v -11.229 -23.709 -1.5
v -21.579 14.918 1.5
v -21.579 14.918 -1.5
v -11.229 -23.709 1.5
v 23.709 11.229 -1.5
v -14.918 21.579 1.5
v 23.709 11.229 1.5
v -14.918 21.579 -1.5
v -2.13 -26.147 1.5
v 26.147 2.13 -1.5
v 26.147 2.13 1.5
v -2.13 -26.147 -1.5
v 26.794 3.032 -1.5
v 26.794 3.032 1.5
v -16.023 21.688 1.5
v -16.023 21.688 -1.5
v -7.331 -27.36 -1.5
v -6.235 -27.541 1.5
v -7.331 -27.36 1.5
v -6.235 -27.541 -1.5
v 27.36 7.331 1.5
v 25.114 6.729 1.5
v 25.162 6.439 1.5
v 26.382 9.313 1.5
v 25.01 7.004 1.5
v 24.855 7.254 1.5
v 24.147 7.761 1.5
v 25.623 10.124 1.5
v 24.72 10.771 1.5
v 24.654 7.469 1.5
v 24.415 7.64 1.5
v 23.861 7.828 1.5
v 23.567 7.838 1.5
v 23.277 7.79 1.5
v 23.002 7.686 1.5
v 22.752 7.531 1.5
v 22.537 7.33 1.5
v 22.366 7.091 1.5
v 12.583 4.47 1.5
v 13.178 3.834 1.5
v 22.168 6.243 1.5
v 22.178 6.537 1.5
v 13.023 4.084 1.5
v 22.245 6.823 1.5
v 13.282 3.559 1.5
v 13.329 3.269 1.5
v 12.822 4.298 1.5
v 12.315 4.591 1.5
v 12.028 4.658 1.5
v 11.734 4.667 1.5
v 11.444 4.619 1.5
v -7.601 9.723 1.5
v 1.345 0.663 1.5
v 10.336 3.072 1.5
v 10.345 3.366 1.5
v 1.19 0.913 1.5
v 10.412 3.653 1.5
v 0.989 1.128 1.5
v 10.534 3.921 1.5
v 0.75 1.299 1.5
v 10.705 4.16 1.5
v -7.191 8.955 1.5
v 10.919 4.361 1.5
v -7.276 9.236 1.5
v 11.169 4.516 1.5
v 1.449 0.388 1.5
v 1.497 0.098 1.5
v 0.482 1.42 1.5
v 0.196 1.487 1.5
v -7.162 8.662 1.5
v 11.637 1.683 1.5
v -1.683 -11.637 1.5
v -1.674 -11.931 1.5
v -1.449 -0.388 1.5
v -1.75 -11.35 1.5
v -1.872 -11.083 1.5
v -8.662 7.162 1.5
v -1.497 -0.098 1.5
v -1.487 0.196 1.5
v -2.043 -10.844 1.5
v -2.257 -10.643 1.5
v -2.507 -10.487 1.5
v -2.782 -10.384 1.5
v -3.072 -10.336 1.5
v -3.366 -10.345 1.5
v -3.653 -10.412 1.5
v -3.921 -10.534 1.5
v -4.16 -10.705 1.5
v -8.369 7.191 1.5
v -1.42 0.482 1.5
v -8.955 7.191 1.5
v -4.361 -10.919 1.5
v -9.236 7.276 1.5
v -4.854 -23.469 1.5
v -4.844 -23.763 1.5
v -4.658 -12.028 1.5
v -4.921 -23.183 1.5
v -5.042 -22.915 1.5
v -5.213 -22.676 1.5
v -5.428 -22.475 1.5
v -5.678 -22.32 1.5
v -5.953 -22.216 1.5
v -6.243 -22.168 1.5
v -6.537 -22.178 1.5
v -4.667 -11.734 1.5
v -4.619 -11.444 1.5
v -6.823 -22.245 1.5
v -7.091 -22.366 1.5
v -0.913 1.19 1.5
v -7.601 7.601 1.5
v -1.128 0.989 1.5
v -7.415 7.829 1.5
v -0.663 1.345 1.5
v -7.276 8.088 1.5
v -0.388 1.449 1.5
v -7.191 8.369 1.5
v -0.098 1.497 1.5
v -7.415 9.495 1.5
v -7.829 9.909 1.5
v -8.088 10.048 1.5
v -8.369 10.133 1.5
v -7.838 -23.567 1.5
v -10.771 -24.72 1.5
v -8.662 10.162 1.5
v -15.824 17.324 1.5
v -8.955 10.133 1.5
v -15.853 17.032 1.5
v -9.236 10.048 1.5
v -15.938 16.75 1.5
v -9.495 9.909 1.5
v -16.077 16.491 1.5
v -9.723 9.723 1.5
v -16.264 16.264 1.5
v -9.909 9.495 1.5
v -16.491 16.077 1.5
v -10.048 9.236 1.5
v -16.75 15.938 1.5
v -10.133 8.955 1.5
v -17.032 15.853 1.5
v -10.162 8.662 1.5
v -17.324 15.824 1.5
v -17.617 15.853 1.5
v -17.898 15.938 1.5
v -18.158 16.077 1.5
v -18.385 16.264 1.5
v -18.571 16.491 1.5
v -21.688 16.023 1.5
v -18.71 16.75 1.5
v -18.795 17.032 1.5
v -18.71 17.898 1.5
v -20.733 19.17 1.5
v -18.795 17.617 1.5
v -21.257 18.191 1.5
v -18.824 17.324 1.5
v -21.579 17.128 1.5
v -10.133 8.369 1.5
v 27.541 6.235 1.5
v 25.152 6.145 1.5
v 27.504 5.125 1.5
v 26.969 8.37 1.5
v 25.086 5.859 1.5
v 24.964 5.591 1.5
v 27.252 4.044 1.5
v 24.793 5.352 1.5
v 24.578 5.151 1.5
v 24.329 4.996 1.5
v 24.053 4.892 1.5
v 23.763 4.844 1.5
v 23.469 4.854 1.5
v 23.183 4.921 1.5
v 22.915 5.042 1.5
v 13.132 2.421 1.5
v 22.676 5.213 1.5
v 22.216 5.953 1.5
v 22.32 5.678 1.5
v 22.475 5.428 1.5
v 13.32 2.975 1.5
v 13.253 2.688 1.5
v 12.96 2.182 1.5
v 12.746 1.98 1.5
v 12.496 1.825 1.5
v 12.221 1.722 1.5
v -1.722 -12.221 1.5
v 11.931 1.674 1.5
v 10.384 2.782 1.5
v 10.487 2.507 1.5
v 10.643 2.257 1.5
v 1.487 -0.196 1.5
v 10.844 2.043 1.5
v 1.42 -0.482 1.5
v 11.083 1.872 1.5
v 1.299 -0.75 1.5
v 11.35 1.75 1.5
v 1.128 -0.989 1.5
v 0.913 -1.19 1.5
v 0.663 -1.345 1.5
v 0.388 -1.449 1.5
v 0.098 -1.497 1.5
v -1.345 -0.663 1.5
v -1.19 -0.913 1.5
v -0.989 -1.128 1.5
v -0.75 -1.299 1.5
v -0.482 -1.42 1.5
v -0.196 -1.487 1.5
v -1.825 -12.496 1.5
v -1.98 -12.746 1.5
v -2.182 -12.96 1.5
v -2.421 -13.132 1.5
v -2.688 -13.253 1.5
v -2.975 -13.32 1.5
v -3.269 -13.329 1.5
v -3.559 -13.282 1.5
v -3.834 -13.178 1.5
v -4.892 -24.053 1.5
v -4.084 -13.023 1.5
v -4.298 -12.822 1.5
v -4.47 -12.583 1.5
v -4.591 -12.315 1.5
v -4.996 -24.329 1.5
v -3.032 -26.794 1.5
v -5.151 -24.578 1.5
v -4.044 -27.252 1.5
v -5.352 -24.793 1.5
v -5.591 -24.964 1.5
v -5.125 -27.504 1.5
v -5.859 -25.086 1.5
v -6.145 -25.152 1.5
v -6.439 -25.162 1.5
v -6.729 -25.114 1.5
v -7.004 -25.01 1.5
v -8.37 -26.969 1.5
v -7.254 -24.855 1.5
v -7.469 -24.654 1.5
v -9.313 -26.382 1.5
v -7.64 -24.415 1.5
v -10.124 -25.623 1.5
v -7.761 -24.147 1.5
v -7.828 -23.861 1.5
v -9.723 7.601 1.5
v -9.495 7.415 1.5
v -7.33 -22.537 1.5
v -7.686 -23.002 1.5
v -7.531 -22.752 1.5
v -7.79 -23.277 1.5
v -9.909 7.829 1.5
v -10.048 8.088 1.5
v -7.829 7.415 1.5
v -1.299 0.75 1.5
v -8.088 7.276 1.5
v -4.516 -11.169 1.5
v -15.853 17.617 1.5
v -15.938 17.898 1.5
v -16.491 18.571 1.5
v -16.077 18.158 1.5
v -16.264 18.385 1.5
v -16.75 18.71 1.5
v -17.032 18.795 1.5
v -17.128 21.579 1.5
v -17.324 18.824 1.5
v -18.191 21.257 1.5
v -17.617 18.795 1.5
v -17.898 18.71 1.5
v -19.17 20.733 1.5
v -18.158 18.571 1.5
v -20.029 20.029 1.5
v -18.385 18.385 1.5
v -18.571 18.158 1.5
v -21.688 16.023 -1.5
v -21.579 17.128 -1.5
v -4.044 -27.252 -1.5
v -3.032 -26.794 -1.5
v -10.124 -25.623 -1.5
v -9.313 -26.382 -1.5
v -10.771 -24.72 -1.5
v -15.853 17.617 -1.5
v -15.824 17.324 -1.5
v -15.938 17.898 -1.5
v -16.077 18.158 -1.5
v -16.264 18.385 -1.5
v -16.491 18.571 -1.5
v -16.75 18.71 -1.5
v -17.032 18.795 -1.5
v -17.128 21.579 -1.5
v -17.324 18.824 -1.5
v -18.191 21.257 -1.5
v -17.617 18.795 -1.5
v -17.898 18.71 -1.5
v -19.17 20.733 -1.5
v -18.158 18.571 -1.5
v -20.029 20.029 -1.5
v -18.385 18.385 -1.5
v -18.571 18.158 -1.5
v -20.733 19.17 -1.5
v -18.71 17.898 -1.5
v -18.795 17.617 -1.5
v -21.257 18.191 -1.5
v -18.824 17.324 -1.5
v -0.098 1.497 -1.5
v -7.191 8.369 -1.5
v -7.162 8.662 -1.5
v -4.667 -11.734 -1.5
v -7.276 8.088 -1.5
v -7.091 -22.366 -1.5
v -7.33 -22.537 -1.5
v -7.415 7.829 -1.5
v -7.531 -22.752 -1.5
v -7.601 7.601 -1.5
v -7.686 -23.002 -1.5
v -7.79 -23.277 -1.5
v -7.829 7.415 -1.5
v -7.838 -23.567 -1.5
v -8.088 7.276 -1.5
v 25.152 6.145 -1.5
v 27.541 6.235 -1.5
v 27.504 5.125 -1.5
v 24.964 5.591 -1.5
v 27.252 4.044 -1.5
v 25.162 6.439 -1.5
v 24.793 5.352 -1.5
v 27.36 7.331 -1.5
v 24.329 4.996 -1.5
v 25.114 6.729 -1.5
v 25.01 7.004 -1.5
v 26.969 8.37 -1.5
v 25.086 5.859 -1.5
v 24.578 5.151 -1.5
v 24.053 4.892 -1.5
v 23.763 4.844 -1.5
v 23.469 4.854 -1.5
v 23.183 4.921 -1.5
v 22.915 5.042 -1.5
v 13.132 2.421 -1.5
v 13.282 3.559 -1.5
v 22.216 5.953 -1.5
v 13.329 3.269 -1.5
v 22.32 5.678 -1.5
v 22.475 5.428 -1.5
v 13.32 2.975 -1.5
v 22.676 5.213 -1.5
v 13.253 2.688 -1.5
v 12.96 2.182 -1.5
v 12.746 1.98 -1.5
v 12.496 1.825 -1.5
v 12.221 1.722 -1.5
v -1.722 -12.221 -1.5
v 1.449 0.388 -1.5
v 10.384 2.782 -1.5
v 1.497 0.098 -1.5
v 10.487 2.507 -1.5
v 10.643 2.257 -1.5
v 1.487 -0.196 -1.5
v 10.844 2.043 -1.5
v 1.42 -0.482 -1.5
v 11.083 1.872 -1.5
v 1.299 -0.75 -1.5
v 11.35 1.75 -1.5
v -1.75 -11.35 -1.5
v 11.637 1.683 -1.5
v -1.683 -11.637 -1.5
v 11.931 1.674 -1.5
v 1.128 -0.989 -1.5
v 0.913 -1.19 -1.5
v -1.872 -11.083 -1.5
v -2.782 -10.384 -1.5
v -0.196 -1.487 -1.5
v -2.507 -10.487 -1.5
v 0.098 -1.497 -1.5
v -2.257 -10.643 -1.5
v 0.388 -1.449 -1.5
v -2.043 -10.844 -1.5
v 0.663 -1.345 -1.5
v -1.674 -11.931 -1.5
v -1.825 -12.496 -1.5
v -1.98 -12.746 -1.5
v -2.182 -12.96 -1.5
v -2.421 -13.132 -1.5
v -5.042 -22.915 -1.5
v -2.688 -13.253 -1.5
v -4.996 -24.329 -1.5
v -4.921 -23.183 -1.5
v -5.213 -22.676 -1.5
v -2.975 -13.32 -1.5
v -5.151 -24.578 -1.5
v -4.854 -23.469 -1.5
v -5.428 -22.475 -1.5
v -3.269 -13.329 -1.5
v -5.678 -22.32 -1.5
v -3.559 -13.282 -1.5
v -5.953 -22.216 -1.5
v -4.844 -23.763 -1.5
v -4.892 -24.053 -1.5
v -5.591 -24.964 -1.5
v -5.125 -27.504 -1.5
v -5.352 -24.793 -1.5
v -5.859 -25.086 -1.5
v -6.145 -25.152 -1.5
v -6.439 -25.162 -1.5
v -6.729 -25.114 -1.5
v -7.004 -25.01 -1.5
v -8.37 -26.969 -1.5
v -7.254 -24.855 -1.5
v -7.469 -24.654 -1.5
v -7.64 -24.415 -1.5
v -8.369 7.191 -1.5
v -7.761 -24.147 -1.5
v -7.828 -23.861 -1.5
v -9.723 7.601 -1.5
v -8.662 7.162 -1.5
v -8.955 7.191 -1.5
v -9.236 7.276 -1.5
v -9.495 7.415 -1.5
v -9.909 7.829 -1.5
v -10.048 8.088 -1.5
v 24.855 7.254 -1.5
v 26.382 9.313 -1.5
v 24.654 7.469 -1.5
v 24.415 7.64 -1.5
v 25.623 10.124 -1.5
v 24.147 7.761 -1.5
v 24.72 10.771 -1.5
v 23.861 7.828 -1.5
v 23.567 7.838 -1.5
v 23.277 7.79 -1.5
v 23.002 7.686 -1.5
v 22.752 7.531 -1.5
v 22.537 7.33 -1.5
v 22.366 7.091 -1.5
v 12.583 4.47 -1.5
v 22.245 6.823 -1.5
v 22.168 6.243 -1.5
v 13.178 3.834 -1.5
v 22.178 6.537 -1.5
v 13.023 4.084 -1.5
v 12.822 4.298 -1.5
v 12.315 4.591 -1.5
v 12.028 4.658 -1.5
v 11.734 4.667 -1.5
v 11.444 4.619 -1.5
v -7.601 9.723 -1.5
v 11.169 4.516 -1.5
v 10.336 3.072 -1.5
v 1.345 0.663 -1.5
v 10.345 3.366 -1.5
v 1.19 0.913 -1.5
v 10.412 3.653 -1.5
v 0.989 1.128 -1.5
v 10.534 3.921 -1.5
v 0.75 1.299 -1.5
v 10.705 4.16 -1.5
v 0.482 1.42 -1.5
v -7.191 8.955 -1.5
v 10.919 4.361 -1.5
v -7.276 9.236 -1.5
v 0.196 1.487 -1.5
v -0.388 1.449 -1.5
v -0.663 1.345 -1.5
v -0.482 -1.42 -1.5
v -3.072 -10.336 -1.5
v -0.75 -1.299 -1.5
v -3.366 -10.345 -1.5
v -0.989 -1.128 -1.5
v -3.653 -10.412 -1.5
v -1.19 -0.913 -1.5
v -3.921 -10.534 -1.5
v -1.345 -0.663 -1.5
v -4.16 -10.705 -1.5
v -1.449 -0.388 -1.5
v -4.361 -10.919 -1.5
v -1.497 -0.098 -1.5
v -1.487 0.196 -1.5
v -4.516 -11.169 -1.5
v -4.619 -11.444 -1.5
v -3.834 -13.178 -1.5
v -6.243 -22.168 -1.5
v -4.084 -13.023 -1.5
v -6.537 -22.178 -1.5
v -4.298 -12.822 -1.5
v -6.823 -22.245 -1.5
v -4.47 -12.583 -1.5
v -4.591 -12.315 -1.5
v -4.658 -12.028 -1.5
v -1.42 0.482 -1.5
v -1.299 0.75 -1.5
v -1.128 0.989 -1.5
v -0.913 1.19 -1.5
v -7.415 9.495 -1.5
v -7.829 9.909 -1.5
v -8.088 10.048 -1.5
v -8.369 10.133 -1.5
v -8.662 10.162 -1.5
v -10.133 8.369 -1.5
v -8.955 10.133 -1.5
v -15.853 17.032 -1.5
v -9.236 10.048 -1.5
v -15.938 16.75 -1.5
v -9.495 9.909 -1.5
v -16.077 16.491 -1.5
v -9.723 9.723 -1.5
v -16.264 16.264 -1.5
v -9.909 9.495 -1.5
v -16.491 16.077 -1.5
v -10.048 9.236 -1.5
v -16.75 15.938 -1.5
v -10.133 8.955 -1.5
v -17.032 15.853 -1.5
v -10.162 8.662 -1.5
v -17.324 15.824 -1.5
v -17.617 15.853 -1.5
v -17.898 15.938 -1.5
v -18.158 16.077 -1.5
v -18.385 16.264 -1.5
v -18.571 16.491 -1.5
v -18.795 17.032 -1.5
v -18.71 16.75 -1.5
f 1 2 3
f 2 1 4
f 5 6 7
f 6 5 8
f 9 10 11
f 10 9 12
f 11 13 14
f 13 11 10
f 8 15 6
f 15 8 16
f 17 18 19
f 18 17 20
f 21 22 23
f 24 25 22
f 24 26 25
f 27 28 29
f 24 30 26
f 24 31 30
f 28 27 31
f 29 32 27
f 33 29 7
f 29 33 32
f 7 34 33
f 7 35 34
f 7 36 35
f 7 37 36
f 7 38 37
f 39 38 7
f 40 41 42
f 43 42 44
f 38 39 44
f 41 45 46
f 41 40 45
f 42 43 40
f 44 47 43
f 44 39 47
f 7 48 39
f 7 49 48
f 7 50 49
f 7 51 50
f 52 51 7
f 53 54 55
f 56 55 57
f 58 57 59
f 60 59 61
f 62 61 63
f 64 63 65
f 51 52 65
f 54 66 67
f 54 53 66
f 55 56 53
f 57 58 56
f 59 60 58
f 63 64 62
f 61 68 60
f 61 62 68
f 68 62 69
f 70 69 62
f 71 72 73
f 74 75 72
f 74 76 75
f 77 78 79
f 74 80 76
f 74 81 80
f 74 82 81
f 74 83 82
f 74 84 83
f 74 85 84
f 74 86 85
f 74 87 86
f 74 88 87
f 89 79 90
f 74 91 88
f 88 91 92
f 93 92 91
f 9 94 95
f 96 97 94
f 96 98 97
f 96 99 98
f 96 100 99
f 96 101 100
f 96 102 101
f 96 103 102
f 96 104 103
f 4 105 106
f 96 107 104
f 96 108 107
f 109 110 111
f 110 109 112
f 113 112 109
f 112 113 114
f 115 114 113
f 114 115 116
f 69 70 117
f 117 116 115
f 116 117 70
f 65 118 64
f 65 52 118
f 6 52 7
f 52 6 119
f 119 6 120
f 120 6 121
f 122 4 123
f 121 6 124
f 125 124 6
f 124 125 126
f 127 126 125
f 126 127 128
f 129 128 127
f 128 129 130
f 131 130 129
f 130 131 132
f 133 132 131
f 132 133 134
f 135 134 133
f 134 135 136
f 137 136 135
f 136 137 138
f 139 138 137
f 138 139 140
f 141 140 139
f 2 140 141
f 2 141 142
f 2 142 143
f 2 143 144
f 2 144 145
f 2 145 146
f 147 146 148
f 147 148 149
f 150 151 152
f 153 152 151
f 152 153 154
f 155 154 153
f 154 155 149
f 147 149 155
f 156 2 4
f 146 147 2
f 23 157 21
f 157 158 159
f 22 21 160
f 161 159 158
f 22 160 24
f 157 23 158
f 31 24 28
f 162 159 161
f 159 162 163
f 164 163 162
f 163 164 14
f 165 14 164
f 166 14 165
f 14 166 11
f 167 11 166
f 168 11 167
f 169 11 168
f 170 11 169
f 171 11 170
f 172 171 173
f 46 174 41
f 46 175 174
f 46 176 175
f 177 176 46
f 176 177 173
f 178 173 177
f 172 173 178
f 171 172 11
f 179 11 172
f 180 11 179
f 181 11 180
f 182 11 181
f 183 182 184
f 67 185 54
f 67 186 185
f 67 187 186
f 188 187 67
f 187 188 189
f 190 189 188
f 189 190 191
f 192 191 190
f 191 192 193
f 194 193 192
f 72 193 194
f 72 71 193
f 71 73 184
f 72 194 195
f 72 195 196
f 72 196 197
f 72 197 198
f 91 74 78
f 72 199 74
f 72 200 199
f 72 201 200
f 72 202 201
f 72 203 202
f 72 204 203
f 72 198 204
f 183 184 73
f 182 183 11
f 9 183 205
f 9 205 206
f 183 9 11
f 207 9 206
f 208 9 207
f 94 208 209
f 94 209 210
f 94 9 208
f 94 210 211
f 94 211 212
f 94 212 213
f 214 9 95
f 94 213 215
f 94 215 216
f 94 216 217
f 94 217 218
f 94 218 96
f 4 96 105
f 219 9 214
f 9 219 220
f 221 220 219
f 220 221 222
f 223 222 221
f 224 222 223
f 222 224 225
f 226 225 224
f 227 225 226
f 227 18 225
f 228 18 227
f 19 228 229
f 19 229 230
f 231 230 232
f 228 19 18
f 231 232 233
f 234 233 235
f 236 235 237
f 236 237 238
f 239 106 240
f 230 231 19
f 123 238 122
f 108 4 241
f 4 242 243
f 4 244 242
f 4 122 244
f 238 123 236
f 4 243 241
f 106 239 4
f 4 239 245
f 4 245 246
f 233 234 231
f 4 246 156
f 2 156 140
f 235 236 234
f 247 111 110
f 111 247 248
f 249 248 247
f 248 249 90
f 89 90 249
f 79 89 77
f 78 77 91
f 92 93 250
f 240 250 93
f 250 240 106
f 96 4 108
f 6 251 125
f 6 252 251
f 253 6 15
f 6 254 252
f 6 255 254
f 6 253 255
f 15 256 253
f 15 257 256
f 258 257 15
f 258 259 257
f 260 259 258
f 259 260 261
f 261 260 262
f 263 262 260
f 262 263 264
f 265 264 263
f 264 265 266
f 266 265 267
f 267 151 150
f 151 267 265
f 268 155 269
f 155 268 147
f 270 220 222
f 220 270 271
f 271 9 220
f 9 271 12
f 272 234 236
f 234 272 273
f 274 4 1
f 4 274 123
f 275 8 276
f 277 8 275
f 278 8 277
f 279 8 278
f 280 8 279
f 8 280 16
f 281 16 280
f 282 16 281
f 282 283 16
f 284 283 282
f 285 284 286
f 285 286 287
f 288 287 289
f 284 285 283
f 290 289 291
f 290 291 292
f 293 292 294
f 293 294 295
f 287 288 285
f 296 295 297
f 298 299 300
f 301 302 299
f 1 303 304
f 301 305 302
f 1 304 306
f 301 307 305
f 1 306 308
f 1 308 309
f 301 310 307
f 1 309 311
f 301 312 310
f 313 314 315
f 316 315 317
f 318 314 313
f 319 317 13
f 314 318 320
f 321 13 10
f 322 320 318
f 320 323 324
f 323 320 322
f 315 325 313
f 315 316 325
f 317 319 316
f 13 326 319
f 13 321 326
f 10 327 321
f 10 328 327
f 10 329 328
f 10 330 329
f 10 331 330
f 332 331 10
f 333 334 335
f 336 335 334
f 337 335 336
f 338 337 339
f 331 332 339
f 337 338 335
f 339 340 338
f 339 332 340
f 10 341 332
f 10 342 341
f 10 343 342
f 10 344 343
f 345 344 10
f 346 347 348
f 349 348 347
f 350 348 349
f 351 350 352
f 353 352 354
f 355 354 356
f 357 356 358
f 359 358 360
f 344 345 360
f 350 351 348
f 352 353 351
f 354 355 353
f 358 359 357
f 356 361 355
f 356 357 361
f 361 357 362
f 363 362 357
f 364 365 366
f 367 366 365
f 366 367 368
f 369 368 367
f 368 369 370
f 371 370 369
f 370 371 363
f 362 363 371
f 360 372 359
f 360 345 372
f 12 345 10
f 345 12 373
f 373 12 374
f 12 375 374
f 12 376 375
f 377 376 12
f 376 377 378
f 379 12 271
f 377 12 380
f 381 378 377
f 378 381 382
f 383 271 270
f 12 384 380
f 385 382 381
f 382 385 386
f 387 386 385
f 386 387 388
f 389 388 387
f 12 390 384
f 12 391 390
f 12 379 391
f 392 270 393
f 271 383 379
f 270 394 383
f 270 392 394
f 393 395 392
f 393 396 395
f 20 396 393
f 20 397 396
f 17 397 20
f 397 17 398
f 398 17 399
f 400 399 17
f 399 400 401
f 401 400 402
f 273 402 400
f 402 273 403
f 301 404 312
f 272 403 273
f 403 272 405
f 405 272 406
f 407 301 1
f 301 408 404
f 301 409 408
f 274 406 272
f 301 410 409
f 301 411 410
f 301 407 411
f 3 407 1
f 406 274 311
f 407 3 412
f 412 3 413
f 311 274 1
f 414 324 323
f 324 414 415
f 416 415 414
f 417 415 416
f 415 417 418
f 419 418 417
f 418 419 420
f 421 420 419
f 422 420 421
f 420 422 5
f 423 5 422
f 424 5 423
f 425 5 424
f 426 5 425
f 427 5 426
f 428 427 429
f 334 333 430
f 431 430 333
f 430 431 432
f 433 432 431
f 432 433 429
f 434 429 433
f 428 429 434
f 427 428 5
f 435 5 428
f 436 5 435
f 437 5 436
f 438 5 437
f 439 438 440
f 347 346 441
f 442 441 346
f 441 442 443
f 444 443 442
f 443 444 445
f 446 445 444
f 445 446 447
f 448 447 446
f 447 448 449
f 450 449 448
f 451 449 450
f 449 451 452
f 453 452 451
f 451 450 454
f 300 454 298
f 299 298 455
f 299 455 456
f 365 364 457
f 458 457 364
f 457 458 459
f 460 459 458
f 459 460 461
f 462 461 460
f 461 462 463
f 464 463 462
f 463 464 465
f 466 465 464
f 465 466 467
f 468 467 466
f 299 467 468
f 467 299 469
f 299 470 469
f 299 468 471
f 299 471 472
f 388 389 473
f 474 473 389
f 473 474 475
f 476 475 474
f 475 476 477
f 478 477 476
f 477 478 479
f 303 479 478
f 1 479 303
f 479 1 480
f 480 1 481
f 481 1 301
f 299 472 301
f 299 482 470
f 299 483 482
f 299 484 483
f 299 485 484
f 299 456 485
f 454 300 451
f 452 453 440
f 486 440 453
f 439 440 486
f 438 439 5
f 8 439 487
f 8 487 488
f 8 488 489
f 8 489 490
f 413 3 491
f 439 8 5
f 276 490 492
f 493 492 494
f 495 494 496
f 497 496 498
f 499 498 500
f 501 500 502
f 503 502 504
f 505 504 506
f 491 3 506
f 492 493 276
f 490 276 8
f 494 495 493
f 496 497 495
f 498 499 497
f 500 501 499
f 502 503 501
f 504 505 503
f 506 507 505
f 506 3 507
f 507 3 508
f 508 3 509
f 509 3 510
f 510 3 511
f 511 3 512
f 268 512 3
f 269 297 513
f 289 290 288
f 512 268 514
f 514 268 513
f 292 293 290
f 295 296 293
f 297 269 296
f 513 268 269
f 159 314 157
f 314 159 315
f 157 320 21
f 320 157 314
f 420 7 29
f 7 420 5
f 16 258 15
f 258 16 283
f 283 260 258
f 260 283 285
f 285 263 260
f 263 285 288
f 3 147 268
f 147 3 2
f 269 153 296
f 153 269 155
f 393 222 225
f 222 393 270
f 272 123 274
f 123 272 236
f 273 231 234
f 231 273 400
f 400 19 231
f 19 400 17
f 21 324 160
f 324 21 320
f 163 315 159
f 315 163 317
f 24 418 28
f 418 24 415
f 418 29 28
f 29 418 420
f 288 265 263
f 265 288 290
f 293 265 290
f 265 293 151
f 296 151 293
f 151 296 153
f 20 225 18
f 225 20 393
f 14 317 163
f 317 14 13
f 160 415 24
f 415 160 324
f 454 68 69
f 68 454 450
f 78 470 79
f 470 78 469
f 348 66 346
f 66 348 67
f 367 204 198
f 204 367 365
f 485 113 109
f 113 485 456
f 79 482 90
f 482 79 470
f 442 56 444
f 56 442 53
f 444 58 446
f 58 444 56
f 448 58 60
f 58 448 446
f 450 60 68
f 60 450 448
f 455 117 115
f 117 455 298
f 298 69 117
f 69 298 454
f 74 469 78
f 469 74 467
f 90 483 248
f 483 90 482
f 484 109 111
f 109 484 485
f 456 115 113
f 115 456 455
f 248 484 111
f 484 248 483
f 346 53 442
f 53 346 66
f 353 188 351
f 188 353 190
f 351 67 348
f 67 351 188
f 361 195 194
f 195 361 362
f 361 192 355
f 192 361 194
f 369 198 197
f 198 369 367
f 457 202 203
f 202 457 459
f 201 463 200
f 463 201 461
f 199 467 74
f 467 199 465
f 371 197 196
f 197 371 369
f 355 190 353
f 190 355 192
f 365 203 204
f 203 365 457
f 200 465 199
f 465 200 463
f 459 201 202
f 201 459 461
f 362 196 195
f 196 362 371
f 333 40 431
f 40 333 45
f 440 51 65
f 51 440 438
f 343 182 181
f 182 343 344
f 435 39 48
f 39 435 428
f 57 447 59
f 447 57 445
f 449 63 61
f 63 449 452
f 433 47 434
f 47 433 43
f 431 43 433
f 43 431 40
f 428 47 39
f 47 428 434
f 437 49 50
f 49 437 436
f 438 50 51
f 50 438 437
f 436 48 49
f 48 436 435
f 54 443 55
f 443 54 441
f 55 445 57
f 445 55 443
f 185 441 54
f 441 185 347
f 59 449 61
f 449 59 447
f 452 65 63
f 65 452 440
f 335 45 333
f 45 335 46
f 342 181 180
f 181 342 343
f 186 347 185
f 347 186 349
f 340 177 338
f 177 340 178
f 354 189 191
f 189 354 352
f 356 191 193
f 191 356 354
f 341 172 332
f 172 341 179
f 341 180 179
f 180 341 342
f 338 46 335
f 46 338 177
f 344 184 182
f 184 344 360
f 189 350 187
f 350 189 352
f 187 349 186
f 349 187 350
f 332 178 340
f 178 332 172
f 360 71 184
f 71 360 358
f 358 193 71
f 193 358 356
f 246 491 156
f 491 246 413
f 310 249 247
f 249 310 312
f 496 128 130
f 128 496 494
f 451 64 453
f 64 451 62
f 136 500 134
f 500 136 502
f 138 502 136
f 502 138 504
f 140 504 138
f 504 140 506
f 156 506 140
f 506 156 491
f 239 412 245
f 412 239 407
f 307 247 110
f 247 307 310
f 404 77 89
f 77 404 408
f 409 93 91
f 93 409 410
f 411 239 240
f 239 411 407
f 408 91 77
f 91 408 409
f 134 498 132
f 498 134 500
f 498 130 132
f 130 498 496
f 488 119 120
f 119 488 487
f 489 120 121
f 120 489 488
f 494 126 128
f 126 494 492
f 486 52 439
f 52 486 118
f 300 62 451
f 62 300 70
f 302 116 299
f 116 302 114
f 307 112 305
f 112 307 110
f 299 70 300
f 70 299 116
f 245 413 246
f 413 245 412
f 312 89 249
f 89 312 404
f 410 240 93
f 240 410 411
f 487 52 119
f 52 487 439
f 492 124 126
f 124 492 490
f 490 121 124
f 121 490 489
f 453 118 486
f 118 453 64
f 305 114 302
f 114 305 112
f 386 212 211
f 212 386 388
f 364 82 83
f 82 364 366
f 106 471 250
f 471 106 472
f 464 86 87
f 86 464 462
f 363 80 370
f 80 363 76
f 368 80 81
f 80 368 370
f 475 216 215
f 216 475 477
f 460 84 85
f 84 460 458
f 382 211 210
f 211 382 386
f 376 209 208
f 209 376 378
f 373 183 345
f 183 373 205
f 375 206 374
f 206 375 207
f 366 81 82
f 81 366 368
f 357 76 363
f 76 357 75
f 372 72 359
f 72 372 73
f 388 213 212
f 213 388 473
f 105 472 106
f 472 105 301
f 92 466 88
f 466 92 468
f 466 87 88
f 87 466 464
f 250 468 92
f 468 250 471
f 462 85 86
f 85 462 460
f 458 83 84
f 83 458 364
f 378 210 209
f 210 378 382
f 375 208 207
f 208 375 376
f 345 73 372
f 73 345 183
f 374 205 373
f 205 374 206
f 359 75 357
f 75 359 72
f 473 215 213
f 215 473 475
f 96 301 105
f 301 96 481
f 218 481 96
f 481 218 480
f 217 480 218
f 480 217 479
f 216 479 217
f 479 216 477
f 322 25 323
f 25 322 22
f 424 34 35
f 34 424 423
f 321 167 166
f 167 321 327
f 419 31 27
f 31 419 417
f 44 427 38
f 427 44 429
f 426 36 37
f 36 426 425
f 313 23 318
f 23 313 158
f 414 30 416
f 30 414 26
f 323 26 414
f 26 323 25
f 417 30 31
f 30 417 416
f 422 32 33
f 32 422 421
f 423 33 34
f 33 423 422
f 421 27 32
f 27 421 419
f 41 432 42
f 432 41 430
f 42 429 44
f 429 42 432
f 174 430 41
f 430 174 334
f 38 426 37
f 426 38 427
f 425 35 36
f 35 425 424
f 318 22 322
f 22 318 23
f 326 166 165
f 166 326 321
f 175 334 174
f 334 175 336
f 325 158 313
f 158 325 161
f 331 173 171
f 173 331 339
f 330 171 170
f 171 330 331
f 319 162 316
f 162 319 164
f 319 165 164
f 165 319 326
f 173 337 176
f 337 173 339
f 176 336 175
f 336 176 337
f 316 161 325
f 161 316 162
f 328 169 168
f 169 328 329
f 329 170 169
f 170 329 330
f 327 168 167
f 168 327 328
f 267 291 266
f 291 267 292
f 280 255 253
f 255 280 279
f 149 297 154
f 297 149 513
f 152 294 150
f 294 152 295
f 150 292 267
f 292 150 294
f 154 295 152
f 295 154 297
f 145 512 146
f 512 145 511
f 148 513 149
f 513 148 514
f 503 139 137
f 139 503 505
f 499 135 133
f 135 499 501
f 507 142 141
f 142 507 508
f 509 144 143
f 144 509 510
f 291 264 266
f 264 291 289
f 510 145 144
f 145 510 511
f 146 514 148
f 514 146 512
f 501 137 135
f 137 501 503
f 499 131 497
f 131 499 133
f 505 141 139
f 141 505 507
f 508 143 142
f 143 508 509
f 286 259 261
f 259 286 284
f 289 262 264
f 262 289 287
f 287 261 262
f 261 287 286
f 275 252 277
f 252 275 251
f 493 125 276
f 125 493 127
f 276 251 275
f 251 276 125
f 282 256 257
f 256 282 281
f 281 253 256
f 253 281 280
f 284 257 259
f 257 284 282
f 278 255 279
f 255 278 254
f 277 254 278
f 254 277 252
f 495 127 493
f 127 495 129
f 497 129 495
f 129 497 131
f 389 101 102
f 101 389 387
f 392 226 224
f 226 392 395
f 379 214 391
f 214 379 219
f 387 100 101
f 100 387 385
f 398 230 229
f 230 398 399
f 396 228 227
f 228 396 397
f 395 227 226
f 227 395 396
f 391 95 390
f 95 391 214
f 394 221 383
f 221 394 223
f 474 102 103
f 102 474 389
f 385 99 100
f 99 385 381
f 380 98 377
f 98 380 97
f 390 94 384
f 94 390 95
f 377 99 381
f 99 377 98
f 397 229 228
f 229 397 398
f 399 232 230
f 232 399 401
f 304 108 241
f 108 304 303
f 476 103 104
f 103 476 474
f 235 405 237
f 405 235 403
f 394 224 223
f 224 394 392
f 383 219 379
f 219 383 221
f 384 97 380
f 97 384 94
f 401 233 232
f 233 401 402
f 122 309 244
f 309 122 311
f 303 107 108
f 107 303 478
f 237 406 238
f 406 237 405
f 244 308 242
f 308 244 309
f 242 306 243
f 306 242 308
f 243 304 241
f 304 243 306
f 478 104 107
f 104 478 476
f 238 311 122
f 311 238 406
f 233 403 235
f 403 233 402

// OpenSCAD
union() // SharpSCAD generated scene: Ball 4oz
{
  rotate( a= [ 0, 0, 15 ] )
  {
    { // module: pf_jig
      difference()
      {
        hull()
        {
          translate( v= [ 22.66, 0, 0 ] )
          {
            cylinder( r= 5.665, center= true, $fn= 32, h= 3 );
          }
          rotate( a= [ 0, 0, 120 ] )
          {
            translate( v= [ 22.66, 0, 0 ] )
            {
              cylinder( r= 5.665, center= true, $fn= 32, h= 3 );
            }
          }
          rotate( a= [ 0, 0, -120 ] )
          {
            translate( v= [ 22.66, 0, 0 ] )
            {
              cylinder( r= 5.665, center= true, $fn= 32, h= 3 );
            }
          }
        }
        cylinder( r= 1.5, center= true, $fn= 32, h= 4 );
        translate( v= [ 12.25, 0, 0 ] )
        {
          cylinder( r= 1.5, center= true, $fn= 32, h= 4 );
        }
        rotate( a= [ 0, 0, 120 ] )
        {
          translate( v= [ 12.25, 0, 0 ] )
          {
            cylinder( r= 1.5, center= true, $fn= 32, h= 4 );
          }
        }
        rotate( a= [ 0, 0, -120 ] )
        {
          translate( v= [ 12.25, 0, 0 ] )
          {
            cylinder( r= 1.5, center= true, $fn= 32, h= 4 );
          }
        }
        translate( v= [ 24.5, 0, 0 ] )
        {
          cylinder( r= 1.5, center= true, $fn= 32, h= 4 );
        }
        rotate( a= [ 0, 0, 120 ] )
        {
          translate( v= [ 24.5, 0, 0 ] )
          {
            cylinder( r= 1.5, center= true, $fn= 32, h= 4 );
          }
        }
        rotate( a= [ 0, 0, -120 ] )
        {
          translate( v= [ 24.5, 0, 0 ] )
          {
            cylinder( r= 1.5, center= true, $fn= 32, h= 4 );
          }
        }
      }
    }
  }
}
